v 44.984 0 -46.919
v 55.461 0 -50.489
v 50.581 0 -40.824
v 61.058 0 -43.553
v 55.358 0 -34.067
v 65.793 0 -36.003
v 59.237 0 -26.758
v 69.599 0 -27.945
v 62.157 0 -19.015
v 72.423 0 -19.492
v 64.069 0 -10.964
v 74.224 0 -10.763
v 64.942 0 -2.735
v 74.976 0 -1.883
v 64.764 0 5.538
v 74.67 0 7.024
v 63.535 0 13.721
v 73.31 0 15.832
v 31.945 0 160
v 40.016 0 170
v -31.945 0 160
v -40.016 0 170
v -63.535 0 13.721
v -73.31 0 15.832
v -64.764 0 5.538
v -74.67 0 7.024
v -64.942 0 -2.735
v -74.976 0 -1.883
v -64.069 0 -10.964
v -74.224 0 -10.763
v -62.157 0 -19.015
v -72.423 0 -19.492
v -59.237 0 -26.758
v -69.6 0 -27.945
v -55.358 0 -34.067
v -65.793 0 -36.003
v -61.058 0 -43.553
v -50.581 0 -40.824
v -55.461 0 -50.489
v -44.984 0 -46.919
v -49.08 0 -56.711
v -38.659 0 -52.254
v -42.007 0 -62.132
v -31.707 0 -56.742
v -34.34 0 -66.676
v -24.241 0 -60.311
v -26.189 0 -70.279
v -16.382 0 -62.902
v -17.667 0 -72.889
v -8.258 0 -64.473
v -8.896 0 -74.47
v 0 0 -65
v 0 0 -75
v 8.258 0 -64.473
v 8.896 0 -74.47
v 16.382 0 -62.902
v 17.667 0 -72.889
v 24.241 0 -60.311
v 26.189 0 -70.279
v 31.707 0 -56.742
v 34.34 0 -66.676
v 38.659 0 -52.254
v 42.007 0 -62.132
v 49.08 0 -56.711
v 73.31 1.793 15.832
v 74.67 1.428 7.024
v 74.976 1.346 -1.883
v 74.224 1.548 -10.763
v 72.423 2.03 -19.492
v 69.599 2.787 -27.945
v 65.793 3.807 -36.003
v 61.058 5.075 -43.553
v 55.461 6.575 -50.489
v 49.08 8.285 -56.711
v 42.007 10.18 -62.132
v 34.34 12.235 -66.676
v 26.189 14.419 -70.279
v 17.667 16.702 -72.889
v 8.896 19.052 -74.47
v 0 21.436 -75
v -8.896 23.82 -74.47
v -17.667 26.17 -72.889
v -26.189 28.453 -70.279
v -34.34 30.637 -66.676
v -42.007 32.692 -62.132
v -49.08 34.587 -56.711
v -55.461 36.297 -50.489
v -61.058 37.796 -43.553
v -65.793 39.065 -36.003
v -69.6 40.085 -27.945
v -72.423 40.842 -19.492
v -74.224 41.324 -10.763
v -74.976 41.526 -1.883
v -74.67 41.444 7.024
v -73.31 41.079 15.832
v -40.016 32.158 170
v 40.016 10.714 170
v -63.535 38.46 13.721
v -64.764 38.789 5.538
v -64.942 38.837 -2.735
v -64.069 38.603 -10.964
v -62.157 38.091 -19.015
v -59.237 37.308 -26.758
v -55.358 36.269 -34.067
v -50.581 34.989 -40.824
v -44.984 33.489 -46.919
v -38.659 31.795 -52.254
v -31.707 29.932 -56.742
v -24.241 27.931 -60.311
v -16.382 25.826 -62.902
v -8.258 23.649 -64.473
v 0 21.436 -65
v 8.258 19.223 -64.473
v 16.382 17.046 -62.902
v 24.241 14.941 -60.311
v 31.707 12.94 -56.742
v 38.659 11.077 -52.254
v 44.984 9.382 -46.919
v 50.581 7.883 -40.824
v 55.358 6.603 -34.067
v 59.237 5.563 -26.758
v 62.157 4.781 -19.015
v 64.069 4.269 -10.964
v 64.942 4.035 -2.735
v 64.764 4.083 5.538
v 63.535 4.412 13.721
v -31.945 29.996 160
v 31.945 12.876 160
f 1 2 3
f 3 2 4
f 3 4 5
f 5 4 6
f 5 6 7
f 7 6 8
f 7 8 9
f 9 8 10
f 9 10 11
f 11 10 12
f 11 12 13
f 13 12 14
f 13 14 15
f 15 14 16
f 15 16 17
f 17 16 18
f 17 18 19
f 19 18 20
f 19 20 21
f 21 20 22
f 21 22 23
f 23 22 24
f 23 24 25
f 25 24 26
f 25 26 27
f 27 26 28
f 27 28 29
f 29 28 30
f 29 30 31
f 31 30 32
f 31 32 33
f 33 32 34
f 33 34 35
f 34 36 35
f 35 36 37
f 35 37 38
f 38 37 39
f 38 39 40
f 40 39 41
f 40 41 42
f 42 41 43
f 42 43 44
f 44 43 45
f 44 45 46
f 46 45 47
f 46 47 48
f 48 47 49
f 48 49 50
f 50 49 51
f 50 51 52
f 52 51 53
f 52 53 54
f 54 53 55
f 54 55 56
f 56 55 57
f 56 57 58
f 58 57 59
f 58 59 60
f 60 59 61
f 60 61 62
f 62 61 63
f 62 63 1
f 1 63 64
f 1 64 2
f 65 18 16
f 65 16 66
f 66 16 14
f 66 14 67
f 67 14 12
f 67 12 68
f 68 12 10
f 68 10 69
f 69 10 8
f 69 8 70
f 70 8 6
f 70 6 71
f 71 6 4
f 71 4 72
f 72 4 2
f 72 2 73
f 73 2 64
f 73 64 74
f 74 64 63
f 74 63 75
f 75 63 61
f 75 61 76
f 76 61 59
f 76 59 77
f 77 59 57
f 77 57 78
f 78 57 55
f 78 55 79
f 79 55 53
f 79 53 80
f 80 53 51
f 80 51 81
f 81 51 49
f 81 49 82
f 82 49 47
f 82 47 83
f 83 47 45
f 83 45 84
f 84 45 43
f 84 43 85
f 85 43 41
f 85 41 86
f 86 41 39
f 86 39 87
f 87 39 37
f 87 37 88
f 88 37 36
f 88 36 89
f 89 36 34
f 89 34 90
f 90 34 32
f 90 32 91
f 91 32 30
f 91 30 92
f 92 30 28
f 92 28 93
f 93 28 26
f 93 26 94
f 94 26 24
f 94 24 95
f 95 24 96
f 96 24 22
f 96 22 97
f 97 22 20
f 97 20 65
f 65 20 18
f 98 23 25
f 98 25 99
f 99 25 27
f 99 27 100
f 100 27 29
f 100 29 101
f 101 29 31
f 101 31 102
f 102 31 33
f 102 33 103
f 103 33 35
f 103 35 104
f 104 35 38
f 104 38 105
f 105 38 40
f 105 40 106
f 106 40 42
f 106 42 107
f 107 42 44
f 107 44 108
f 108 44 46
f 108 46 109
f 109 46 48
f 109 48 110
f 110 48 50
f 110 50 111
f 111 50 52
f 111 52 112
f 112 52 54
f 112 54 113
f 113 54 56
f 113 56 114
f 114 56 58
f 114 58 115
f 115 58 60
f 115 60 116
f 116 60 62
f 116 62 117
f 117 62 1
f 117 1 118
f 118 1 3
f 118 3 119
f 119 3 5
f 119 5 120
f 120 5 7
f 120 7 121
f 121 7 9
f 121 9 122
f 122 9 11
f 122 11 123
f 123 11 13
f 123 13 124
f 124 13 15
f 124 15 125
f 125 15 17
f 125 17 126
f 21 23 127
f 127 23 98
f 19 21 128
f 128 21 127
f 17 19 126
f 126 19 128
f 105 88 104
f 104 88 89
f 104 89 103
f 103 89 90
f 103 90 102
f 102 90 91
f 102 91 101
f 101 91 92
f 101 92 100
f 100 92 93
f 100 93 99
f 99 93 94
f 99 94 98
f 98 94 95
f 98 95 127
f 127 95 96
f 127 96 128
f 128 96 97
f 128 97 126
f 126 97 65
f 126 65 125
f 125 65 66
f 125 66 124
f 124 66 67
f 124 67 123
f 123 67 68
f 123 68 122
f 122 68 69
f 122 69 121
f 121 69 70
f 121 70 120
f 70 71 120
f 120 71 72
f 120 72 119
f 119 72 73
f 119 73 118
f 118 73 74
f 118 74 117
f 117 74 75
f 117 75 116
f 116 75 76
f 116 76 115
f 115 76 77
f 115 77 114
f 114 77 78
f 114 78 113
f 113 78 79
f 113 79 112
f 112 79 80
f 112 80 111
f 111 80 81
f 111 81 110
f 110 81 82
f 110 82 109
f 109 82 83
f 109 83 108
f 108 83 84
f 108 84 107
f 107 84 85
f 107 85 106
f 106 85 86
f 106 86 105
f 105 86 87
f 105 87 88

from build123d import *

# Parameters (mm, degrees)
EXTRUDE_1_DEPTH     = 70
CUT_EXTRUDE_1_DEPTH = 266.612499706


with BuildPart() as part:
    # 草图1 → 凸台-拉伸1 (new body)
    with BuildSketch(Plane(origin=(0, 0, 0), x_dir=(1, 0, 0), z_dir=(0, 1, 0))):
        with BuildLine():
            Line((-73.31, -15.831737113), (-40.016432831, -170))
            Line((-40.016432831, -170), (40.016432831, -170))
            Line((40.016432831, -170), (73.31, -15.831737113))
            ThreePointArc((73.31, -15.831737113), (0, 75), (-73.31, -15.831737113))
        make_face()
        with BuildLine():
            Line((-63.535333333, -13.720838831), (-31.945465312, -160))
            Line((-31.945465312, -160), (31.945465312, -160))
            Line((31.945465312, -160), (63.535333333, -13.720838831))
            ThreePointArc((63.535333333, -13.720838831), (0, 65), (-63.535333333, -13.720838831))
        make_face(mode=Mode.SUBTRACT)
    extrude(amount=EXTRUDE_1_DEPTH)

    # 草图2 → 切除-拉伸1 (cut, through all)
    with BuildSketch(Plane.XY.offset(170)):
        Polygon((-80, 42.871870789), (80, 0), (80, 71.175543423), (-80, 71.175543423), align=None)
    extrude(amount=-CUT_EXTRUDE_1_DEPTH, mode=Mode.SUBTRACT)


solid = part.part
